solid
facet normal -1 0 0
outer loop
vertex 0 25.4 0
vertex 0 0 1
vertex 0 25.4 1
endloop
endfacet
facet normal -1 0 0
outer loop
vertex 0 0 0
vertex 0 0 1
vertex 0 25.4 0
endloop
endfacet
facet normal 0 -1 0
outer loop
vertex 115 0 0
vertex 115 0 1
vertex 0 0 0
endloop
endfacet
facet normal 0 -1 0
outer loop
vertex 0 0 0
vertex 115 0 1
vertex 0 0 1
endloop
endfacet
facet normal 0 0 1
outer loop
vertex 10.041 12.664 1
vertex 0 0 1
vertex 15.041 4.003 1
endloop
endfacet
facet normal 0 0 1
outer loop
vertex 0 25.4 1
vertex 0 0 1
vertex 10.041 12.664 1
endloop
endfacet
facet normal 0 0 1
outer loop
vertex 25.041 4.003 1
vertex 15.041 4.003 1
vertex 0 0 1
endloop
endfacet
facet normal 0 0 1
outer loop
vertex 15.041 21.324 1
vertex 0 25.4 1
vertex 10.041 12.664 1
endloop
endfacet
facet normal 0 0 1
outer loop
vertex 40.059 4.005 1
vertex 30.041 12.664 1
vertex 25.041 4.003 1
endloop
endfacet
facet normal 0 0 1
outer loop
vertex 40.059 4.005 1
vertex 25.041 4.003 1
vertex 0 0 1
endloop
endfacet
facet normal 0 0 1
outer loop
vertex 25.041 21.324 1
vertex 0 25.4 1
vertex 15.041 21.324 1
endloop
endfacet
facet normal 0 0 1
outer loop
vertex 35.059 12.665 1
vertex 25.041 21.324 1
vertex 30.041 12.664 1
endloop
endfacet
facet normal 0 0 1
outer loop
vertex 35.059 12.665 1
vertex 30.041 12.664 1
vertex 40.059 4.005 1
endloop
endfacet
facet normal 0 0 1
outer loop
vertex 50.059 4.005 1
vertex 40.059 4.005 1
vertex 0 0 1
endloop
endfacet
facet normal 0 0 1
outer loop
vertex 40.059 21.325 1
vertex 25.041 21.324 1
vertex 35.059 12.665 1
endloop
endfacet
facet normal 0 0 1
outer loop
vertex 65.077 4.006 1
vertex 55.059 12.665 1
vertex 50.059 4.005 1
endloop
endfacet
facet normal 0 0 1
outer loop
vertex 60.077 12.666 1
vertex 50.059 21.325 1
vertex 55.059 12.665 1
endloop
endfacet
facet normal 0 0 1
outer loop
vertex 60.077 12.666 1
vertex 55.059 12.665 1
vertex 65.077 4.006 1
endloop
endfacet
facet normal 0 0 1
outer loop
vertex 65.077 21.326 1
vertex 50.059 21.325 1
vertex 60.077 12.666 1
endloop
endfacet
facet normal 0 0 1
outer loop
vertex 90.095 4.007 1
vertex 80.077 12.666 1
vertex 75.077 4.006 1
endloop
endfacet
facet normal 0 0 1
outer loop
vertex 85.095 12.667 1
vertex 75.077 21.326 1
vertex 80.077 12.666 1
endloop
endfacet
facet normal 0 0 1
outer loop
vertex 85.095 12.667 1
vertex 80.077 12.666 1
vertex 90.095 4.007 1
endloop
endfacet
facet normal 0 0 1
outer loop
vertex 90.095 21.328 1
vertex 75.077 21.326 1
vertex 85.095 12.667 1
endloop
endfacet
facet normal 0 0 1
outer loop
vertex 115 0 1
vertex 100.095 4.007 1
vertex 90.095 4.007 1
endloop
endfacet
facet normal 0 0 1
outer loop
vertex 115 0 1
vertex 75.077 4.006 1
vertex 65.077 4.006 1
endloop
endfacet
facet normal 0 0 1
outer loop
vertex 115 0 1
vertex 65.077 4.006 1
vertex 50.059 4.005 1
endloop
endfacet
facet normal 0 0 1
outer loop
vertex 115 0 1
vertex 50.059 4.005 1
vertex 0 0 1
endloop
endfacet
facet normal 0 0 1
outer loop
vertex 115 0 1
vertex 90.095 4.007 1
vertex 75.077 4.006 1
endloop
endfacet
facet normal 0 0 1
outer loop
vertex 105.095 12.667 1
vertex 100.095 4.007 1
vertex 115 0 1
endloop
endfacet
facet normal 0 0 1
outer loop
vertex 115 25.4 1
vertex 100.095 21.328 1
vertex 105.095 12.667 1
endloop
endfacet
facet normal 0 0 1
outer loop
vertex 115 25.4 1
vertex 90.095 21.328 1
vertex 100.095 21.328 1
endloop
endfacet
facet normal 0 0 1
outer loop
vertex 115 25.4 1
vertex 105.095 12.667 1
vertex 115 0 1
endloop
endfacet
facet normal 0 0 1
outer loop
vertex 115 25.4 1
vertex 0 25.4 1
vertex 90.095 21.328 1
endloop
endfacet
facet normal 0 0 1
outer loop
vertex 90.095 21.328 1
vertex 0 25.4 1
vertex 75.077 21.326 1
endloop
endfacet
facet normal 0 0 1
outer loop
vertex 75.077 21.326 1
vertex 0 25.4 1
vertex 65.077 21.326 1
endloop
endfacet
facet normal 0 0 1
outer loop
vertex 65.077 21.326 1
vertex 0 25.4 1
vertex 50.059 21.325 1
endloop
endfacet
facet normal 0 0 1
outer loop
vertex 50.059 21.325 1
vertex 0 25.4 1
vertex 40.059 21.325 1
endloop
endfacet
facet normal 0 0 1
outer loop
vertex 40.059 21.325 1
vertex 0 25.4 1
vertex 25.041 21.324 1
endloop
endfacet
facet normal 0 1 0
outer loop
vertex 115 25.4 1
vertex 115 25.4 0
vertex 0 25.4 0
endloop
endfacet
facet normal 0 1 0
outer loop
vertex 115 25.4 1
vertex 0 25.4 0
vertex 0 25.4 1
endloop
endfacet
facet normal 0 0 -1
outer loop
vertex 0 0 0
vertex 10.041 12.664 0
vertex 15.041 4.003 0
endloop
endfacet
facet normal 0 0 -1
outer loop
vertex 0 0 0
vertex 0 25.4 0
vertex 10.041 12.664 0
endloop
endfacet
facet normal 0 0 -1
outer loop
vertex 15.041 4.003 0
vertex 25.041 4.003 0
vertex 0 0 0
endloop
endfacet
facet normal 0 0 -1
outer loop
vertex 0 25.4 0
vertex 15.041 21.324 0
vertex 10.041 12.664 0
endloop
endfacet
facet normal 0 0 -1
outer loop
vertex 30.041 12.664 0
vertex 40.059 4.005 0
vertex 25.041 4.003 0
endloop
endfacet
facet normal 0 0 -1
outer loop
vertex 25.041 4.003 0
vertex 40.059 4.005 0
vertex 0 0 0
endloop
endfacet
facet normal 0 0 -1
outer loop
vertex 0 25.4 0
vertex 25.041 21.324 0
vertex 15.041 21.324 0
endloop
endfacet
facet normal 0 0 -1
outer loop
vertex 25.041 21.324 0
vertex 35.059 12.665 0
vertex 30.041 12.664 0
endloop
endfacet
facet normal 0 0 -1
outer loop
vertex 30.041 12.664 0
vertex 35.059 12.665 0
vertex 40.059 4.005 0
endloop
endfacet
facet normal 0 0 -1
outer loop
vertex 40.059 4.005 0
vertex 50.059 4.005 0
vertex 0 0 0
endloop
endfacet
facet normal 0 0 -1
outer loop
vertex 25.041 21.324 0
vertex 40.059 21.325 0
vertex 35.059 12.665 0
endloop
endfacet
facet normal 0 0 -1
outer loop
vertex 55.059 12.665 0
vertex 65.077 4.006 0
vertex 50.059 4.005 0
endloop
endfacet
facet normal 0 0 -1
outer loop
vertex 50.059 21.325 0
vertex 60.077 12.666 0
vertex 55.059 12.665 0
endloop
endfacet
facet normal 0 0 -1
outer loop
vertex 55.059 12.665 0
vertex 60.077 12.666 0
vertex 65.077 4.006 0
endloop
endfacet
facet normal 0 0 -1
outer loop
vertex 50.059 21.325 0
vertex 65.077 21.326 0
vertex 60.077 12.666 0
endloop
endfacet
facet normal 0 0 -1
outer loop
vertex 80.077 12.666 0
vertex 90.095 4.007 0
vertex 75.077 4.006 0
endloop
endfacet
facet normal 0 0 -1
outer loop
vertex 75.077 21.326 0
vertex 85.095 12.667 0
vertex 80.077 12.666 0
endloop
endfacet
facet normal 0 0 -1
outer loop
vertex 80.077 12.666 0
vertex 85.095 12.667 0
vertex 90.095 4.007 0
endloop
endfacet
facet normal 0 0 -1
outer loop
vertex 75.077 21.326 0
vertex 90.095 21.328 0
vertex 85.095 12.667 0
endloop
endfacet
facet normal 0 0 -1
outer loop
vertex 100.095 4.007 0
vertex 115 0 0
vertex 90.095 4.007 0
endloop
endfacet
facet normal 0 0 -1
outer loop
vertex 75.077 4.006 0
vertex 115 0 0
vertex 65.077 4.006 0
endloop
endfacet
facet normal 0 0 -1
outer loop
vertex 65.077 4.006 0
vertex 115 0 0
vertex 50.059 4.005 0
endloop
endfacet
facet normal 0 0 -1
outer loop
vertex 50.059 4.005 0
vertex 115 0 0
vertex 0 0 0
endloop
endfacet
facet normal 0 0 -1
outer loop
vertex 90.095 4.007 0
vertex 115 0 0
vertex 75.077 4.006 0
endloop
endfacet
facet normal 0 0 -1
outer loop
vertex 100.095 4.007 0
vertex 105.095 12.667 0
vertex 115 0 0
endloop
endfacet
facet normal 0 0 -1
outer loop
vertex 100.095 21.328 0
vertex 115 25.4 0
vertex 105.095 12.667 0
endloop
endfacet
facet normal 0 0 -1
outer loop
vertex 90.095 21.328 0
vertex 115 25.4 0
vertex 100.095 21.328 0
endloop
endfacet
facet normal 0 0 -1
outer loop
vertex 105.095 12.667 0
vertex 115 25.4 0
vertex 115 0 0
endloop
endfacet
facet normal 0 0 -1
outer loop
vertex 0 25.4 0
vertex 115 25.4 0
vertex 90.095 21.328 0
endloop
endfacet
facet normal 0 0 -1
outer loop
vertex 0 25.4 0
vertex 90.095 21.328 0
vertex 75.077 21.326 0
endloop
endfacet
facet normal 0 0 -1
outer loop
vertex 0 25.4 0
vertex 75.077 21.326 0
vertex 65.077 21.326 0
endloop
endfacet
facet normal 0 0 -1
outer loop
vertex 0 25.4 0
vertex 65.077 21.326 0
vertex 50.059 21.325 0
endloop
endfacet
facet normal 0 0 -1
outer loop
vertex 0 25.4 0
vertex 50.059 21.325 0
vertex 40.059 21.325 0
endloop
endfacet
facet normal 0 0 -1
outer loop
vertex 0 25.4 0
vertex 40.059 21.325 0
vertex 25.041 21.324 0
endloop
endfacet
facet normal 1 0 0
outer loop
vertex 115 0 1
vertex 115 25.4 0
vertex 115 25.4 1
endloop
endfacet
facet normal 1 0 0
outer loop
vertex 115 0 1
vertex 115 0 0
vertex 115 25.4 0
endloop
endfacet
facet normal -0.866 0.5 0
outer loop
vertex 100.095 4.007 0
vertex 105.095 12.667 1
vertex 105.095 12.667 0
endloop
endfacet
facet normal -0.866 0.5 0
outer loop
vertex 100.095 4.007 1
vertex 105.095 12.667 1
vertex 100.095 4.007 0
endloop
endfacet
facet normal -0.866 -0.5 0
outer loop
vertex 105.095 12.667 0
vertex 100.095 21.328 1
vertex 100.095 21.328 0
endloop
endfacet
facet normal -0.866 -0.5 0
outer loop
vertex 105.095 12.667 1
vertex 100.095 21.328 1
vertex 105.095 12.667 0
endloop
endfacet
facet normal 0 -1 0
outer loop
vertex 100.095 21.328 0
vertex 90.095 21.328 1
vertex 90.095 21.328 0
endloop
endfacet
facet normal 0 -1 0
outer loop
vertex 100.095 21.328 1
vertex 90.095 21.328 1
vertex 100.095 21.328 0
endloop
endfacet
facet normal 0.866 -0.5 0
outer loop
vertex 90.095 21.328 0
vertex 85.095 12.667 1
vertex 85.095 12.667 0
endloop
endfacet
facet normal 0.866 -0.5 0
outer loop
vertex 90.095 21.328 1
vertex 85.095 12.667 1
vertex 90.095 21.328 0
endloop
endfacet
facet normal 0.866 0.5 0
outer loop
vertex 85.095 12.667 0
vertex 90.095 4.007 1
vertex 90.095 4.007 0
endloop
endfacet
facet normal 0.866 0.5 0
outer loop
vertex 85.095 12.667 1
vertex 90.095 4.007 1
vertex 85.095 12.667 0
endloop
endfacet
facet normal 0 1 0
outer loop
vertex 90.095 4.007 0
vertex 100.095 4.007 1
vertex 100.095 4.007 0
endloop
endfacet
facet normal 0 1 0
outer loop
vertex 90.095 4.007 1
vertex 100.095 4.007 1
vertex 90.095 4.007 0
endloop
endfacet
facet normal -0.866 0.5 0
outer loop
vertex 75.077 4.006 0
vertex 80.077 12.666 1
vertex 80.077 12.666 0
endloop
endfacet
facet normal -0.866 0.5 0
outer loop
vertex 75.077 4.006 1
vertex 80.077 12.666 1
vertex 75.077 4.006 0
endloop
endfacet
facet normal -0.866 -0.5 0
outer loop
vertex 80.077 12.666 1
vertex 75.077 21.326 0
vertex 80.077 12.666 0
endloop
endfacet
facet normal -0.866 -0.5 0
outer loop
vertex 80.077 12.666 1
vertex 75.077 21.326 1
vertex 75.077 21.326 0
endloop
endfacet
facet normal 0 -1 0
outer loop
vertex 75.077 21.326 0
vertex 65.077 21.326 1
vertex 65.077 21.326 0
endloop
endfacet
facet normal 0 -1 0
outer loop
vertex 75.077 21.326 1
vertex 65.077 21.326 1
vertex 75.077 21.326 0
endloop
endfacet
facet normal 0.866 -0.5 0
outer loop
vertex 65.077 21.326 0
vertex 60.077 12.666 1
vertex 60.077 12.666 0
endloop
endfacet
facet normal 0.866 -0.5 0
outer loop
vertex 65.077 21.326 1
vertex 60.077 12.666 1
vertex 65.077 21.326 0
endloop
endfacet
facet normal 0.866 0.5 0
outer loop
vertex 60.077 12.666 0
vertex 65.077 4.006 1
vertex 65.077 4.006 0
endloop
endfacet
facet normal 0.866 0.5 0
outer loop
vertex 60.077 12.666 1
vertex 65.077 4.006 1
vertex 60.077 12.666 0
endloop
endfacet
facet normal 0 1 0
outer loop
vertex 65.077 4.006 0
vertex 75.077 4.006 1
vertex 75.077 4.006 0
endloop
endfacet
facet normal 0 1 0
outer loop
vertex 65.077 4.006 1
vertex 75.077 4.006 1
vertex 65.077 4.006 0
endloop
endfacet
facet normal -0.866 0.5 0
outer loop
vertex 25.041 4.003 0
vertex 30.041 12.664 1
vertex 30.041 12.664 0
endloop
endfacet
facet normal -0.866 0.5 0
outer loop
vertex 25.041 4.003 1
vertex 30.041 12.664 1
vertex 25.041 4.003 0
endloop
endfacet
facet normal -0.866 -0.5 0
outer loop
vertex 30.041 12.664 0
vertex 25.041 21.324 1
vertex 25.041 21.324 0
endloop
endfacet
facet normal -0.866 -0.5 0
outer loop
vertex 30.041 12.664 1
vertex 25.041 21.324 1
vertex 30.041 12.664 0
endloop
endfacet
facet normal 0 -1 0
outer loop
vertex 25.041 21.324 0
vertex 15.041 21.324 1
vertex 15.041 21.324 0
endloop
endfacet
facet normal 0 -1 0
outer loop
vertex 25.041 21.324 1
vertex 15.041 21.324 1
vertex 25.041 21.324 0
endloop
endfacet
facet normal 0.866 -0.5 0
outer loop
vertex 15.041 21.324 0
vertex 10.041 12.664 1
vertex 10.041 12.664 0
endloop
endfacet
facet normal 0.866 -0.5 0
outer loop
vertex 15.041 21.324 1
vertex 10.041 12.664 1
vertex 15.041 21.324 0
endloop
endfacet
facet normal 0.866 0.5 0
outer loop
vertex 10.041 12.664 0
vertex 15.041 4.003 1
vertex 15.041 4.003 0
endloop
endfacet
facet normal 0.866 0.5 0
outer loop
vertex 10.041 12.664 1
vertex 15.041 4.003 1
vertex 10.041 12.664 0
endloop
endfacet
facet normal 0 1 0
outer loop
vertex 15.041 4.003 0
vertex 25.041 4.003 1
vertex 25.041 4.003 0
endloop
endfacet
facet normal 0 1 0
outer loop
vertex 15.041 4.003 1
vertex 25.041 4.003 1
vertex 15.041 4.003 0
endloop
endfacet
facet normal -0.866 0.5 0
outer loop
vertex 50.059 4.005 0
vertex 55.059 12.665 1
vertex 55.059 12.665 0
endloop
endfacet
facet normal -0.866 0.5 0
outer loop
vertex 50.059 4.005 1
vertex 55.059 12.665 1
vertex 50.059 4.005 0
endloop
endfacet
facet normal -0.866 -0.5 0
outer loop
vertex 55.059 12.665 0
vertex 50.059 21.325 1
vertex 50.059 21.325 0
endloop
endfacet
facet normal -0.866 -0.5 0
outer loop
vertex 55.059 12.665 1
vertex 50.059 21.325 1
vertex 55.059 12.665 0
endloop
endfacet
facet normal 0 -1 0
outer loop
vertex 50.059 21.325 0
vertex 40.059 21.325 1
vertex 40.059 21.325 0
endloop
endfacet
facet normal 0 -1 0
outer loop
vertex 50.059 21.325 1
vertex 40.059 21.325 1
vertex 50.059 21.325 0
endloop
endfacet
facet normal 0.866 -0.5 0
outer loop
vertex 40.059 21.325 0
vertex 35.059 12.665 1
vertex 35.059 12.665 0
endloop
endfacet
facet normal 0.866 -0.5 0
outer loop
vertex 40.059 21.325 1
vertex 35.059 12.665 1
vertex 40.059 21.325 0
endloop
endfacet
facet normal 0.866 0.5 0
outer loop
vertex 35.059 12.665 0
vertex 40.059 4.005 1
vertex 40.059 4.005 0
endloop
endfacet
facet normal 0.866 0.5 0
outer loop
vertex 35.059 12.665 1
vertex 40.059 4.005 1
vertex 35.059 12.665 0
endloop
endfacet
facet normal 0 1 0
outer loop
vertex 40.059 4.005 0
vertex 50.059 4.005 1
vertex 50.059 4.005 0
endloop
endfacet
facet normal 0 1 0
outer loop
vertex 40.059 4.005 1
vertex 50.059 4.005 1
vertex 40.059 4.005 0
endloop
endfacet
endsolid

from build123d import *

# Parameters (mm, degrees)
BOX_W        = 115
BOX_H        = 25.4
BOX_DEPTH    = 1
POCKET_DEPTH = 5


with BuildPart() as part:
    # Box → Box (new body)
    with BuildSketch(Plane.XY):
        with Locations((57.5, 12.7)):
            Rectangle(BOX_W, BOX_H)
    extrude(amount=BOX_DEPTH)

    # Sketch (on Face6 of BaseFeature) → Pocket (cut)
    with BuildSketch(Plane.XY.offset(1)):
        Polygon((25.040976, 4.003275), (30.040976, 12.663529), (25.040976, 21.323783), (15.040976, 21.323783), (10.040976, 12.663529), (15.040976, 4.003275), align=None)
        Polygon((50.058906, 4.004545), (55.058906, 12.664799), (50.058906, 21.325053), (40.058906, 21.325053), (35.058906, 12.664799), (40.058906, 4.004545), align=None)
        Polygon((75.076836, 4.005815), (80.076836, 12.666069), (75.076836, 21.326323), (65.076836, 21.326323), (60.076836, 12.666069), (65.076836, 4.005815), align=None)
        Polygon((100.094766, 4.007085), (105.094766, 12.667339), (100.094766, 21.327593), (90.094766, 21.327593), (85.094766, 12.667339), (90.094766, 4.007085), align=None)
    extrude(amount=-POCKET_DEPTH, mode=Mode.SUBTRACT)


solid = part.part
